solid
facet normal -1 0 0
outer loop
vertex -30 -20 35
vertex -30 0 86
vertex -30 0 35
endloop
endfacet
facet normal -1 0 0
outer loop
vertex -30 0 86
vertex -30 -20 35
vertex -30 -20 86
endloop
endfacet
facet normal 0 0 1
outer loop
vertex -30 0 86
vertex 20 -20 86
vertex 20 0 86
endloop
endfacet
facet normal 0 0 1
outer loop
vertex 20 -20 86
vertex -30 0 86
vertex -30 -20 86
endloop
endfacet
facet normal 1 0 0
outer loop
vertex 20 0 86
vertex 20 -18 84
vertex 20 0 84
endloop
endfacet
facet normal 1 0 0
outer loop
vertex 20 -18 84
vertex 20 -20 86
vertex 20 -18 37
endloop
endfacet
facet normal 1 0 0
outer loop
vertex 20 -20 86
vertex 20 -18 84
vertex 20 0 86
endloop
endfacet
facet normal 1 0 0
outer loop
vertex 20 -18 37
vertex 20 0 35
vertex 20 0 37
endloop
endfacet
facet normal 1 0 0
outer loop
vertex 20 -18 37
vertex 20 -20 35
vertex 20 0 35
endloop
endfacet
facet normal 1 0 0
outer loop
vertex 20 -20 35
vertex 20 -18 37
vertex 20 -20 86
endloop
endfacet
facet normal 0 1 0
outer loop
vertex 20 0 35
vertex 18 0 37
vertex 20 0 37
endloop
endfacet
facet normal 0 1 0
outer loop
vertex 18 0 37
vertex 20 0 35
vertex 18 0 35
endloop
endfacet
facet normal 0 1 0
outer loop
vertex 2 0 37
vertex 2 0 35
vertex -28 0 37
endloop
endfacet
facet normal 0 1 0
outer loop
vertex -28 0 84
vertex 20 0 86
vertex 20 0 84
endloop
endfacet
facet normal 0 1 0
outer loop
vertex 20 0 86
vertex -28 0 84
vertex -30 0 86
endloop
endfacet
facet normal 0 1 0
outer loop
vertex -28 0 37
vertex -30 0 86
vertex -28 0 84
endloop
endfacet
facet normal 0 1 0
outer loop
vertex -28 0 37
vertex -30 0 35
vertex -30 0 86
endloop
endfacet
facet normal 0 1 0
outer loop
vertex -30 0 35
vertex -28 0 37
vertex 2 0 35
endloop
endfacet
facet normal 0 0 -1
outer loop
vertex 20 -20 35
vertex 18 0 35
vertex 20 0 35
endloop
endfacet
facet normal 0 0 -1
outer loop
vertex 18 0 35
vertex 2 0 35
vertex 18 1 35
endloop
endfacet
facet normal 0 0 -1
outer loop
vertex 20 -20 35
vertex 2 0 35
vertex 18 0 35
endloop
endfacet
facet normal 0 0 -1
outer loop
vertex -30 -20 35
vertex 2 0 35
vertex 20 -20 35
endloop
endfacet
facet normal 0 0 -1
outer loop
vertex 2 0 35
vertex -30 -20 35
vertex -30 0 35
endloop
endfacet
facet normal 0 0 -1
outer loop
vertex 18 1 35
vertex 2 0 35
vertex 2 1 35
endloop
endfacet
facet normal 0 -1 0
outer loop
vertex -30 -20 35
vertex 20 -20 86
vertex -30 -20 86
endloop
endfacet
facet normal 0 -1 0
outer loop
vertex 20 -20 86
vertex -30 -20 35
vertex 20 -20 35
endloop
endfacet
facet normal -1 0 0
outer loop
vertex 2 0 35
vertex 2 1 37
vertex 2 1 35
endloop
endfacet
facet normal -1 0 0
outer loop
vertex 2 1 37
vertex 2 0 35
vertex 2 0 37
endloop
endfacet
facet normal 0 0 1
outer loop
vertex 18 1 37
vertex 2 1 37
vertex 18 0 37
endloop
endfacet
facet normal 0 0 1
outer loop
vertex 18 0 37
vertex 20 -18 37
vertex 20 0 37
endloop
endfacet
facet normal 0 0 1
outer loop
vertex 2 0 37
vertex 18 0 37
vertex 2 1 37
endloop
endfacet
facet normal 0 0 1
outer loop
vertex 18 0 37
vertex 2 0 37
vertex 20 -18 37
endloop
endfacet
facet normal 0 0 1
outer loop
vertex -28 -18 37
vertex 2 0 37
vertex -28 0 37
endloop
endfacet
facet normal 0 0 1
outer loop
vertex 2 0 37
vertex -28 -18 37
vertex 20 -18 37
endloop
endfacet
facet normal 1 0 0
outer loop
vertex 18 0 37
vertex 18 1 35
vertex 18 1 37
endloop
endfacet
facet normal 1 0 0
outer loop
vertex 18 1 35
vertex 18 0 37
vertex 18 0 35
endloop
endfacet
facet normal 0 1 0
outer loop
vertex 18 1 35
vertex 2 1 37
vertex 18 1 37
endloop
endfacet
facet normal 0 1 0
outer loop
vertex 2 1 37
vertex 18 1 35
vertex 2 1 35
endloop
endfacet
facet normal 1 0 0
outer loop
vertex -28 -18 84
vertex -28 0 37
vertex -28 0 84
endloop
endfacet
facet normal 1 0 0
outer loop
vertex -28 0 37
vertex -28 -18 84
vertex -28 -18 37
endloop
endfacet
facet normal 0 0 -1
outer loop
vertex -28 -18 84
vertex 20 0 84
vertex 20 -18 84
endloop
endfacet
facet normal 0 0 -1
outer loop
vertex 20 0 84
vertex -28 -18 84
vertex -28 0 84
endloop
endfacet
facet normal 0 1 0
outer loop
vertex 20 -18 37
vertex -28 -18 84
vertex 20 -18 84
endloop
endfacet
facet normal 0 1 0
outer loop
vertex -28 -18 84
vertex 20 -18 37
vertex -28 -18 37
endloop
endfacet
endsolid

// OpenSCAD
difference() {
    union() {
        translate([-30, -20, 35]) {
            cube([50, 20, 51]);
        }
        translate([2, -1, 35]) {
            cube([16, 2, 2]);
        }
    }
    
    translate([-28, -18, 37]) {
        cube([49, 19, 47]);
    }
}
